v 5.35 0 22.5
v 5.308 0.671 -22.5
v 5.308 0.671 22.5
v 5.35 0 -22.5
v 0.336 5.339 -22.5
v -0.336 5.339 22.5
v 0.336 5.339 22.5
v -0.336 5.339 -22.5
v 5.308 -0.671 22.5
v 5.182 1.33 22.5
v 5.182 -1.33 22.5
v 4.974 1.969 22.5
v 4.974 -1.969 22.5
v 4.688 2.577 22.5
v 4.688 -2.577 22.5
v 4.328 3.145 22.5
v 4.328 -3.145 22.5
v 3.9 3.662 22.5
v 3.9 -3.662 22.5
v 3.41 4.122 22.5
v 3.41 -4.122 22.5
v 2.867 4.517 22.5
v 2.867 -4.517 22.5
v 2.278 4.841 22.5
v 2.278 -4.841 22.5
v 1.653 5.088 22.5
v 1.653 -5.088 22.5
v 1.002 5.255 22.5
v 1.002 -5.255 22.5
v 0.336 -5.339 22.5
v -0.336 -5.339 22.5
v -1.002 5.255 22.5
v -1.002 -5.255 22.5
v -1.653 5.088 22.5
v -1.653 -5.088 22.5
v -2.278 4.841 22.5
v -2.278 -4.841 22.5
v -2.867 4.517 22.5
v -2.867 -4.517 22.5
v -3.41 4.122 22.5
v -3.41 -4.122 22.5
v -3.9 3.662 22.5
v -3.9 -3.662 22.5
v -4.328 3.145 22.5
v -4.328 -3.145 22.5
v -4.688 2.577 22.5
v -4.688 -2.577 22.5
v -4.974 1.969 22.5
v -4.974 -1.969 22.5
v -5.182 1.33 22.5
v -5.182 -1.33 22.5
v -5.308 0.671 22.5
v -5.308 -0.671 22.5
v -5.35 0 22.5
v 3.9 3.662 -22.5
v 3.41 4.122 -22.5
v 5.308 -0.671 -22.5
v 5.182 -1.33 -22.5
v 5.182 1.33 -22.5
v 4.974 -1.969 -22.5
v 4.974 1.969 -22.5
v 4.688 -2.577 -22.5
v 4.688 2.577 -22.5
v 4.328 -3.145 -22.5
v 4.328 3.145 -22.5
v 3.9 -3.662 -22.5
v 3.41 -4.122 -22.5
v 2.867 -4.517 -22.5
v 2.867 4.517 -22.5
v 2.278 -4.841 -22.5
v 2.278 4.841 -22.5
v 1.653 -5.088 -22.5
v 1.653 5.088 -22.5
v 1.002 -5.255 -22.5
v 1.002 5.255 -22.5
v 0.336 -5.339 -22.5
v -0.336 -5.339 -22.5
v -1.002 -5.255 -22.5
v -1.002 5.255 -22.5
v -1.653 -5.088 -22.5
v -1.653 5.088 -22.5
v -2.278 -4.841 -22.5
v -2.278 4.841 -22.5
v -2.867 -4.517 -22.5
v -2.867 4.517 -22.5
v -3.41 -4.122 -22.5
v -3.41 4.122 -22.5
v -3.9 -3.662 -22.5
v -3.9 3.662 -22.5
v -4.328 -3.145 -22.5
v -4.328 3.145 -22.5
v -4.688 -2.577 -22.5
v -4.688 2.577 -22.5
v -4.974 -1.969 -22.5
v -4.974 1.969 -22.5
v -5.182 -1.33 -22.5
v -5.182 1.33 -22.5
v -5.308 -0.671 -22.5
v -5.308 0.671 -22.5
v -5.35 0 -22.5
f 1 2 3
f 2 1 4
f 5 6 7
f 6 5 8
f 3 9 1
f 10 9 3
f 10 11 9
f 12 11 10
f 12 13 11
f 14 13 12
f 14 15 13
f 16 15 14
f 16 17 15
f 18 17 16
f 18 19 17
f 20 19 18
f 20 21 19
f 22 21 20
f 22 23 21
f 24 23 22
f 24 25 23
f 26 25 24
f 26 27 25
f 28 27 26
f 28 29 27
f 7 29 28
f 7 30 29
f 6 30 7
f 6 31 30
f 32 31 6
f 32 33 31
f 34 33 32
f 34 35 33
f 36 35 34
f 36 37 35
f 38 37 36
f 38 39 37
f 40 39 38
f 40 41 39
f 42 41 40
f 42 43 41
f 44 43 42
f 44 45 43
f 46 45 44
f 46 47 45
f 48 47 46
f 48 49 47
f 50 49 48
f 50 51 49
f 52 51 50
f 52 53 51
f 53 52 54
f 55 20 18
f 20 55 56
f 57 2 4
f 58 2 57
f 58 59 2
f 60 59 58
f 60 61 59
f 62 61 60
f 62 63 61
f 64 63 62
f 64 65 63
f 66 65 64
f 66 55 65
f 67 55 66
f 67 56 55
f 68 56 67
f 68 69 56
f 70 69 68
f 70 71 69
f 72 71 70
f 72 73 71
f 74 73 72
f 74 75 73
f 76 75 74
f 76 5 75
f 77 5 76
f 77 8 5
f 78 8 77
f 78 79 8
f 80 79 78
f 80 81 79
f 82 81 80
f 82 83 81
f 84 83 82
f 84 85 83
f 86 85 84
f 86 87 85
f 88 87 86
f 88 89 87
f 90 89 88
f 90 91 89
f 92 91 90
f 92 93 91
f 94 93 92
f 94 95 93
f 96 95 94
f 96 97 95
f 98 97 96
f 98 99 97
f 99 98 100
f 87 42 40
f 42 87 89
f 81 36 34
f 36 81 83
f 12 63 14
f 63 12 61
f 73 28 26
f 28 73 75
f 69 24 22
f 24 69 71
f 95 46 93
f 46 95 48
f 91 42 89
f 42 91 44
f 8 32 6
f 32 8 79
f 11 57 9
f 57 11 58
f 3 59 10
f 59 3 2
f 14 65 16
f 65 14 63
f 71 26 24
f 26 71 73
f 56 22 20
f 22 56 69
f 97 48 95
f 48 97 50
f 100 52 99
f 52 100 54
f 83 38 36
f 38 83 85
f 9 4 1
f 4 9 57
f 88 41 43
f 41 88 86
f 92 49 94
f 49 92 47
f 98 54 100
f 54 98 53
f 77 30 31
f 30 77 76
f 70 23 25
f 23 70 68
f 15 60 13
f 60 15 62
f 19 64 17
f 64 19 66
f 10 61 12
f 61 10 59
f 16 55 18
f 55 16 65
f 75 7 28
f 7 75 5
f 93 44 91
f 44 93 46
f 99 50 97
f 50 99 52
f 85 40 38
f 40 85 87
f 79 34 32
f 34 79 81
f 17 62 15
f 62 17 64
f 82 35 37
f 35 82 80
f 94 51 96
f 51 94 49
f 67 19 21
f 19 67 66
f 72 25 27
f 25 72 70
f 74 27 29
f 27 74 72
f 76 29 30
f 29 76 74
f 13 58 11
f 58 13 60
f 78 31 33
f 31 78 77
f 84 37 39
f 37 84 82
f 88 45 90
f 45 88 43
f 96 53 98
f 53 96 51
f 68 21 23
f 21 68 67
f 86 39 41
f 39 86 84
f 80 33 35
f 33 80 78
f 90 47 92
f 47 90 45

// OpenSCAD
$fn = 50;


difference() {
	union() {
		translate(v = [0, 0, -22.5000000000]) {
			cylinder(h = 45, r = 5.3500000000);
		}
	}
	union() {
		translate(v = [0, 0, -100.0000000000]) {
			cylinder(h = 200, r = 0);
		}
	}
}
